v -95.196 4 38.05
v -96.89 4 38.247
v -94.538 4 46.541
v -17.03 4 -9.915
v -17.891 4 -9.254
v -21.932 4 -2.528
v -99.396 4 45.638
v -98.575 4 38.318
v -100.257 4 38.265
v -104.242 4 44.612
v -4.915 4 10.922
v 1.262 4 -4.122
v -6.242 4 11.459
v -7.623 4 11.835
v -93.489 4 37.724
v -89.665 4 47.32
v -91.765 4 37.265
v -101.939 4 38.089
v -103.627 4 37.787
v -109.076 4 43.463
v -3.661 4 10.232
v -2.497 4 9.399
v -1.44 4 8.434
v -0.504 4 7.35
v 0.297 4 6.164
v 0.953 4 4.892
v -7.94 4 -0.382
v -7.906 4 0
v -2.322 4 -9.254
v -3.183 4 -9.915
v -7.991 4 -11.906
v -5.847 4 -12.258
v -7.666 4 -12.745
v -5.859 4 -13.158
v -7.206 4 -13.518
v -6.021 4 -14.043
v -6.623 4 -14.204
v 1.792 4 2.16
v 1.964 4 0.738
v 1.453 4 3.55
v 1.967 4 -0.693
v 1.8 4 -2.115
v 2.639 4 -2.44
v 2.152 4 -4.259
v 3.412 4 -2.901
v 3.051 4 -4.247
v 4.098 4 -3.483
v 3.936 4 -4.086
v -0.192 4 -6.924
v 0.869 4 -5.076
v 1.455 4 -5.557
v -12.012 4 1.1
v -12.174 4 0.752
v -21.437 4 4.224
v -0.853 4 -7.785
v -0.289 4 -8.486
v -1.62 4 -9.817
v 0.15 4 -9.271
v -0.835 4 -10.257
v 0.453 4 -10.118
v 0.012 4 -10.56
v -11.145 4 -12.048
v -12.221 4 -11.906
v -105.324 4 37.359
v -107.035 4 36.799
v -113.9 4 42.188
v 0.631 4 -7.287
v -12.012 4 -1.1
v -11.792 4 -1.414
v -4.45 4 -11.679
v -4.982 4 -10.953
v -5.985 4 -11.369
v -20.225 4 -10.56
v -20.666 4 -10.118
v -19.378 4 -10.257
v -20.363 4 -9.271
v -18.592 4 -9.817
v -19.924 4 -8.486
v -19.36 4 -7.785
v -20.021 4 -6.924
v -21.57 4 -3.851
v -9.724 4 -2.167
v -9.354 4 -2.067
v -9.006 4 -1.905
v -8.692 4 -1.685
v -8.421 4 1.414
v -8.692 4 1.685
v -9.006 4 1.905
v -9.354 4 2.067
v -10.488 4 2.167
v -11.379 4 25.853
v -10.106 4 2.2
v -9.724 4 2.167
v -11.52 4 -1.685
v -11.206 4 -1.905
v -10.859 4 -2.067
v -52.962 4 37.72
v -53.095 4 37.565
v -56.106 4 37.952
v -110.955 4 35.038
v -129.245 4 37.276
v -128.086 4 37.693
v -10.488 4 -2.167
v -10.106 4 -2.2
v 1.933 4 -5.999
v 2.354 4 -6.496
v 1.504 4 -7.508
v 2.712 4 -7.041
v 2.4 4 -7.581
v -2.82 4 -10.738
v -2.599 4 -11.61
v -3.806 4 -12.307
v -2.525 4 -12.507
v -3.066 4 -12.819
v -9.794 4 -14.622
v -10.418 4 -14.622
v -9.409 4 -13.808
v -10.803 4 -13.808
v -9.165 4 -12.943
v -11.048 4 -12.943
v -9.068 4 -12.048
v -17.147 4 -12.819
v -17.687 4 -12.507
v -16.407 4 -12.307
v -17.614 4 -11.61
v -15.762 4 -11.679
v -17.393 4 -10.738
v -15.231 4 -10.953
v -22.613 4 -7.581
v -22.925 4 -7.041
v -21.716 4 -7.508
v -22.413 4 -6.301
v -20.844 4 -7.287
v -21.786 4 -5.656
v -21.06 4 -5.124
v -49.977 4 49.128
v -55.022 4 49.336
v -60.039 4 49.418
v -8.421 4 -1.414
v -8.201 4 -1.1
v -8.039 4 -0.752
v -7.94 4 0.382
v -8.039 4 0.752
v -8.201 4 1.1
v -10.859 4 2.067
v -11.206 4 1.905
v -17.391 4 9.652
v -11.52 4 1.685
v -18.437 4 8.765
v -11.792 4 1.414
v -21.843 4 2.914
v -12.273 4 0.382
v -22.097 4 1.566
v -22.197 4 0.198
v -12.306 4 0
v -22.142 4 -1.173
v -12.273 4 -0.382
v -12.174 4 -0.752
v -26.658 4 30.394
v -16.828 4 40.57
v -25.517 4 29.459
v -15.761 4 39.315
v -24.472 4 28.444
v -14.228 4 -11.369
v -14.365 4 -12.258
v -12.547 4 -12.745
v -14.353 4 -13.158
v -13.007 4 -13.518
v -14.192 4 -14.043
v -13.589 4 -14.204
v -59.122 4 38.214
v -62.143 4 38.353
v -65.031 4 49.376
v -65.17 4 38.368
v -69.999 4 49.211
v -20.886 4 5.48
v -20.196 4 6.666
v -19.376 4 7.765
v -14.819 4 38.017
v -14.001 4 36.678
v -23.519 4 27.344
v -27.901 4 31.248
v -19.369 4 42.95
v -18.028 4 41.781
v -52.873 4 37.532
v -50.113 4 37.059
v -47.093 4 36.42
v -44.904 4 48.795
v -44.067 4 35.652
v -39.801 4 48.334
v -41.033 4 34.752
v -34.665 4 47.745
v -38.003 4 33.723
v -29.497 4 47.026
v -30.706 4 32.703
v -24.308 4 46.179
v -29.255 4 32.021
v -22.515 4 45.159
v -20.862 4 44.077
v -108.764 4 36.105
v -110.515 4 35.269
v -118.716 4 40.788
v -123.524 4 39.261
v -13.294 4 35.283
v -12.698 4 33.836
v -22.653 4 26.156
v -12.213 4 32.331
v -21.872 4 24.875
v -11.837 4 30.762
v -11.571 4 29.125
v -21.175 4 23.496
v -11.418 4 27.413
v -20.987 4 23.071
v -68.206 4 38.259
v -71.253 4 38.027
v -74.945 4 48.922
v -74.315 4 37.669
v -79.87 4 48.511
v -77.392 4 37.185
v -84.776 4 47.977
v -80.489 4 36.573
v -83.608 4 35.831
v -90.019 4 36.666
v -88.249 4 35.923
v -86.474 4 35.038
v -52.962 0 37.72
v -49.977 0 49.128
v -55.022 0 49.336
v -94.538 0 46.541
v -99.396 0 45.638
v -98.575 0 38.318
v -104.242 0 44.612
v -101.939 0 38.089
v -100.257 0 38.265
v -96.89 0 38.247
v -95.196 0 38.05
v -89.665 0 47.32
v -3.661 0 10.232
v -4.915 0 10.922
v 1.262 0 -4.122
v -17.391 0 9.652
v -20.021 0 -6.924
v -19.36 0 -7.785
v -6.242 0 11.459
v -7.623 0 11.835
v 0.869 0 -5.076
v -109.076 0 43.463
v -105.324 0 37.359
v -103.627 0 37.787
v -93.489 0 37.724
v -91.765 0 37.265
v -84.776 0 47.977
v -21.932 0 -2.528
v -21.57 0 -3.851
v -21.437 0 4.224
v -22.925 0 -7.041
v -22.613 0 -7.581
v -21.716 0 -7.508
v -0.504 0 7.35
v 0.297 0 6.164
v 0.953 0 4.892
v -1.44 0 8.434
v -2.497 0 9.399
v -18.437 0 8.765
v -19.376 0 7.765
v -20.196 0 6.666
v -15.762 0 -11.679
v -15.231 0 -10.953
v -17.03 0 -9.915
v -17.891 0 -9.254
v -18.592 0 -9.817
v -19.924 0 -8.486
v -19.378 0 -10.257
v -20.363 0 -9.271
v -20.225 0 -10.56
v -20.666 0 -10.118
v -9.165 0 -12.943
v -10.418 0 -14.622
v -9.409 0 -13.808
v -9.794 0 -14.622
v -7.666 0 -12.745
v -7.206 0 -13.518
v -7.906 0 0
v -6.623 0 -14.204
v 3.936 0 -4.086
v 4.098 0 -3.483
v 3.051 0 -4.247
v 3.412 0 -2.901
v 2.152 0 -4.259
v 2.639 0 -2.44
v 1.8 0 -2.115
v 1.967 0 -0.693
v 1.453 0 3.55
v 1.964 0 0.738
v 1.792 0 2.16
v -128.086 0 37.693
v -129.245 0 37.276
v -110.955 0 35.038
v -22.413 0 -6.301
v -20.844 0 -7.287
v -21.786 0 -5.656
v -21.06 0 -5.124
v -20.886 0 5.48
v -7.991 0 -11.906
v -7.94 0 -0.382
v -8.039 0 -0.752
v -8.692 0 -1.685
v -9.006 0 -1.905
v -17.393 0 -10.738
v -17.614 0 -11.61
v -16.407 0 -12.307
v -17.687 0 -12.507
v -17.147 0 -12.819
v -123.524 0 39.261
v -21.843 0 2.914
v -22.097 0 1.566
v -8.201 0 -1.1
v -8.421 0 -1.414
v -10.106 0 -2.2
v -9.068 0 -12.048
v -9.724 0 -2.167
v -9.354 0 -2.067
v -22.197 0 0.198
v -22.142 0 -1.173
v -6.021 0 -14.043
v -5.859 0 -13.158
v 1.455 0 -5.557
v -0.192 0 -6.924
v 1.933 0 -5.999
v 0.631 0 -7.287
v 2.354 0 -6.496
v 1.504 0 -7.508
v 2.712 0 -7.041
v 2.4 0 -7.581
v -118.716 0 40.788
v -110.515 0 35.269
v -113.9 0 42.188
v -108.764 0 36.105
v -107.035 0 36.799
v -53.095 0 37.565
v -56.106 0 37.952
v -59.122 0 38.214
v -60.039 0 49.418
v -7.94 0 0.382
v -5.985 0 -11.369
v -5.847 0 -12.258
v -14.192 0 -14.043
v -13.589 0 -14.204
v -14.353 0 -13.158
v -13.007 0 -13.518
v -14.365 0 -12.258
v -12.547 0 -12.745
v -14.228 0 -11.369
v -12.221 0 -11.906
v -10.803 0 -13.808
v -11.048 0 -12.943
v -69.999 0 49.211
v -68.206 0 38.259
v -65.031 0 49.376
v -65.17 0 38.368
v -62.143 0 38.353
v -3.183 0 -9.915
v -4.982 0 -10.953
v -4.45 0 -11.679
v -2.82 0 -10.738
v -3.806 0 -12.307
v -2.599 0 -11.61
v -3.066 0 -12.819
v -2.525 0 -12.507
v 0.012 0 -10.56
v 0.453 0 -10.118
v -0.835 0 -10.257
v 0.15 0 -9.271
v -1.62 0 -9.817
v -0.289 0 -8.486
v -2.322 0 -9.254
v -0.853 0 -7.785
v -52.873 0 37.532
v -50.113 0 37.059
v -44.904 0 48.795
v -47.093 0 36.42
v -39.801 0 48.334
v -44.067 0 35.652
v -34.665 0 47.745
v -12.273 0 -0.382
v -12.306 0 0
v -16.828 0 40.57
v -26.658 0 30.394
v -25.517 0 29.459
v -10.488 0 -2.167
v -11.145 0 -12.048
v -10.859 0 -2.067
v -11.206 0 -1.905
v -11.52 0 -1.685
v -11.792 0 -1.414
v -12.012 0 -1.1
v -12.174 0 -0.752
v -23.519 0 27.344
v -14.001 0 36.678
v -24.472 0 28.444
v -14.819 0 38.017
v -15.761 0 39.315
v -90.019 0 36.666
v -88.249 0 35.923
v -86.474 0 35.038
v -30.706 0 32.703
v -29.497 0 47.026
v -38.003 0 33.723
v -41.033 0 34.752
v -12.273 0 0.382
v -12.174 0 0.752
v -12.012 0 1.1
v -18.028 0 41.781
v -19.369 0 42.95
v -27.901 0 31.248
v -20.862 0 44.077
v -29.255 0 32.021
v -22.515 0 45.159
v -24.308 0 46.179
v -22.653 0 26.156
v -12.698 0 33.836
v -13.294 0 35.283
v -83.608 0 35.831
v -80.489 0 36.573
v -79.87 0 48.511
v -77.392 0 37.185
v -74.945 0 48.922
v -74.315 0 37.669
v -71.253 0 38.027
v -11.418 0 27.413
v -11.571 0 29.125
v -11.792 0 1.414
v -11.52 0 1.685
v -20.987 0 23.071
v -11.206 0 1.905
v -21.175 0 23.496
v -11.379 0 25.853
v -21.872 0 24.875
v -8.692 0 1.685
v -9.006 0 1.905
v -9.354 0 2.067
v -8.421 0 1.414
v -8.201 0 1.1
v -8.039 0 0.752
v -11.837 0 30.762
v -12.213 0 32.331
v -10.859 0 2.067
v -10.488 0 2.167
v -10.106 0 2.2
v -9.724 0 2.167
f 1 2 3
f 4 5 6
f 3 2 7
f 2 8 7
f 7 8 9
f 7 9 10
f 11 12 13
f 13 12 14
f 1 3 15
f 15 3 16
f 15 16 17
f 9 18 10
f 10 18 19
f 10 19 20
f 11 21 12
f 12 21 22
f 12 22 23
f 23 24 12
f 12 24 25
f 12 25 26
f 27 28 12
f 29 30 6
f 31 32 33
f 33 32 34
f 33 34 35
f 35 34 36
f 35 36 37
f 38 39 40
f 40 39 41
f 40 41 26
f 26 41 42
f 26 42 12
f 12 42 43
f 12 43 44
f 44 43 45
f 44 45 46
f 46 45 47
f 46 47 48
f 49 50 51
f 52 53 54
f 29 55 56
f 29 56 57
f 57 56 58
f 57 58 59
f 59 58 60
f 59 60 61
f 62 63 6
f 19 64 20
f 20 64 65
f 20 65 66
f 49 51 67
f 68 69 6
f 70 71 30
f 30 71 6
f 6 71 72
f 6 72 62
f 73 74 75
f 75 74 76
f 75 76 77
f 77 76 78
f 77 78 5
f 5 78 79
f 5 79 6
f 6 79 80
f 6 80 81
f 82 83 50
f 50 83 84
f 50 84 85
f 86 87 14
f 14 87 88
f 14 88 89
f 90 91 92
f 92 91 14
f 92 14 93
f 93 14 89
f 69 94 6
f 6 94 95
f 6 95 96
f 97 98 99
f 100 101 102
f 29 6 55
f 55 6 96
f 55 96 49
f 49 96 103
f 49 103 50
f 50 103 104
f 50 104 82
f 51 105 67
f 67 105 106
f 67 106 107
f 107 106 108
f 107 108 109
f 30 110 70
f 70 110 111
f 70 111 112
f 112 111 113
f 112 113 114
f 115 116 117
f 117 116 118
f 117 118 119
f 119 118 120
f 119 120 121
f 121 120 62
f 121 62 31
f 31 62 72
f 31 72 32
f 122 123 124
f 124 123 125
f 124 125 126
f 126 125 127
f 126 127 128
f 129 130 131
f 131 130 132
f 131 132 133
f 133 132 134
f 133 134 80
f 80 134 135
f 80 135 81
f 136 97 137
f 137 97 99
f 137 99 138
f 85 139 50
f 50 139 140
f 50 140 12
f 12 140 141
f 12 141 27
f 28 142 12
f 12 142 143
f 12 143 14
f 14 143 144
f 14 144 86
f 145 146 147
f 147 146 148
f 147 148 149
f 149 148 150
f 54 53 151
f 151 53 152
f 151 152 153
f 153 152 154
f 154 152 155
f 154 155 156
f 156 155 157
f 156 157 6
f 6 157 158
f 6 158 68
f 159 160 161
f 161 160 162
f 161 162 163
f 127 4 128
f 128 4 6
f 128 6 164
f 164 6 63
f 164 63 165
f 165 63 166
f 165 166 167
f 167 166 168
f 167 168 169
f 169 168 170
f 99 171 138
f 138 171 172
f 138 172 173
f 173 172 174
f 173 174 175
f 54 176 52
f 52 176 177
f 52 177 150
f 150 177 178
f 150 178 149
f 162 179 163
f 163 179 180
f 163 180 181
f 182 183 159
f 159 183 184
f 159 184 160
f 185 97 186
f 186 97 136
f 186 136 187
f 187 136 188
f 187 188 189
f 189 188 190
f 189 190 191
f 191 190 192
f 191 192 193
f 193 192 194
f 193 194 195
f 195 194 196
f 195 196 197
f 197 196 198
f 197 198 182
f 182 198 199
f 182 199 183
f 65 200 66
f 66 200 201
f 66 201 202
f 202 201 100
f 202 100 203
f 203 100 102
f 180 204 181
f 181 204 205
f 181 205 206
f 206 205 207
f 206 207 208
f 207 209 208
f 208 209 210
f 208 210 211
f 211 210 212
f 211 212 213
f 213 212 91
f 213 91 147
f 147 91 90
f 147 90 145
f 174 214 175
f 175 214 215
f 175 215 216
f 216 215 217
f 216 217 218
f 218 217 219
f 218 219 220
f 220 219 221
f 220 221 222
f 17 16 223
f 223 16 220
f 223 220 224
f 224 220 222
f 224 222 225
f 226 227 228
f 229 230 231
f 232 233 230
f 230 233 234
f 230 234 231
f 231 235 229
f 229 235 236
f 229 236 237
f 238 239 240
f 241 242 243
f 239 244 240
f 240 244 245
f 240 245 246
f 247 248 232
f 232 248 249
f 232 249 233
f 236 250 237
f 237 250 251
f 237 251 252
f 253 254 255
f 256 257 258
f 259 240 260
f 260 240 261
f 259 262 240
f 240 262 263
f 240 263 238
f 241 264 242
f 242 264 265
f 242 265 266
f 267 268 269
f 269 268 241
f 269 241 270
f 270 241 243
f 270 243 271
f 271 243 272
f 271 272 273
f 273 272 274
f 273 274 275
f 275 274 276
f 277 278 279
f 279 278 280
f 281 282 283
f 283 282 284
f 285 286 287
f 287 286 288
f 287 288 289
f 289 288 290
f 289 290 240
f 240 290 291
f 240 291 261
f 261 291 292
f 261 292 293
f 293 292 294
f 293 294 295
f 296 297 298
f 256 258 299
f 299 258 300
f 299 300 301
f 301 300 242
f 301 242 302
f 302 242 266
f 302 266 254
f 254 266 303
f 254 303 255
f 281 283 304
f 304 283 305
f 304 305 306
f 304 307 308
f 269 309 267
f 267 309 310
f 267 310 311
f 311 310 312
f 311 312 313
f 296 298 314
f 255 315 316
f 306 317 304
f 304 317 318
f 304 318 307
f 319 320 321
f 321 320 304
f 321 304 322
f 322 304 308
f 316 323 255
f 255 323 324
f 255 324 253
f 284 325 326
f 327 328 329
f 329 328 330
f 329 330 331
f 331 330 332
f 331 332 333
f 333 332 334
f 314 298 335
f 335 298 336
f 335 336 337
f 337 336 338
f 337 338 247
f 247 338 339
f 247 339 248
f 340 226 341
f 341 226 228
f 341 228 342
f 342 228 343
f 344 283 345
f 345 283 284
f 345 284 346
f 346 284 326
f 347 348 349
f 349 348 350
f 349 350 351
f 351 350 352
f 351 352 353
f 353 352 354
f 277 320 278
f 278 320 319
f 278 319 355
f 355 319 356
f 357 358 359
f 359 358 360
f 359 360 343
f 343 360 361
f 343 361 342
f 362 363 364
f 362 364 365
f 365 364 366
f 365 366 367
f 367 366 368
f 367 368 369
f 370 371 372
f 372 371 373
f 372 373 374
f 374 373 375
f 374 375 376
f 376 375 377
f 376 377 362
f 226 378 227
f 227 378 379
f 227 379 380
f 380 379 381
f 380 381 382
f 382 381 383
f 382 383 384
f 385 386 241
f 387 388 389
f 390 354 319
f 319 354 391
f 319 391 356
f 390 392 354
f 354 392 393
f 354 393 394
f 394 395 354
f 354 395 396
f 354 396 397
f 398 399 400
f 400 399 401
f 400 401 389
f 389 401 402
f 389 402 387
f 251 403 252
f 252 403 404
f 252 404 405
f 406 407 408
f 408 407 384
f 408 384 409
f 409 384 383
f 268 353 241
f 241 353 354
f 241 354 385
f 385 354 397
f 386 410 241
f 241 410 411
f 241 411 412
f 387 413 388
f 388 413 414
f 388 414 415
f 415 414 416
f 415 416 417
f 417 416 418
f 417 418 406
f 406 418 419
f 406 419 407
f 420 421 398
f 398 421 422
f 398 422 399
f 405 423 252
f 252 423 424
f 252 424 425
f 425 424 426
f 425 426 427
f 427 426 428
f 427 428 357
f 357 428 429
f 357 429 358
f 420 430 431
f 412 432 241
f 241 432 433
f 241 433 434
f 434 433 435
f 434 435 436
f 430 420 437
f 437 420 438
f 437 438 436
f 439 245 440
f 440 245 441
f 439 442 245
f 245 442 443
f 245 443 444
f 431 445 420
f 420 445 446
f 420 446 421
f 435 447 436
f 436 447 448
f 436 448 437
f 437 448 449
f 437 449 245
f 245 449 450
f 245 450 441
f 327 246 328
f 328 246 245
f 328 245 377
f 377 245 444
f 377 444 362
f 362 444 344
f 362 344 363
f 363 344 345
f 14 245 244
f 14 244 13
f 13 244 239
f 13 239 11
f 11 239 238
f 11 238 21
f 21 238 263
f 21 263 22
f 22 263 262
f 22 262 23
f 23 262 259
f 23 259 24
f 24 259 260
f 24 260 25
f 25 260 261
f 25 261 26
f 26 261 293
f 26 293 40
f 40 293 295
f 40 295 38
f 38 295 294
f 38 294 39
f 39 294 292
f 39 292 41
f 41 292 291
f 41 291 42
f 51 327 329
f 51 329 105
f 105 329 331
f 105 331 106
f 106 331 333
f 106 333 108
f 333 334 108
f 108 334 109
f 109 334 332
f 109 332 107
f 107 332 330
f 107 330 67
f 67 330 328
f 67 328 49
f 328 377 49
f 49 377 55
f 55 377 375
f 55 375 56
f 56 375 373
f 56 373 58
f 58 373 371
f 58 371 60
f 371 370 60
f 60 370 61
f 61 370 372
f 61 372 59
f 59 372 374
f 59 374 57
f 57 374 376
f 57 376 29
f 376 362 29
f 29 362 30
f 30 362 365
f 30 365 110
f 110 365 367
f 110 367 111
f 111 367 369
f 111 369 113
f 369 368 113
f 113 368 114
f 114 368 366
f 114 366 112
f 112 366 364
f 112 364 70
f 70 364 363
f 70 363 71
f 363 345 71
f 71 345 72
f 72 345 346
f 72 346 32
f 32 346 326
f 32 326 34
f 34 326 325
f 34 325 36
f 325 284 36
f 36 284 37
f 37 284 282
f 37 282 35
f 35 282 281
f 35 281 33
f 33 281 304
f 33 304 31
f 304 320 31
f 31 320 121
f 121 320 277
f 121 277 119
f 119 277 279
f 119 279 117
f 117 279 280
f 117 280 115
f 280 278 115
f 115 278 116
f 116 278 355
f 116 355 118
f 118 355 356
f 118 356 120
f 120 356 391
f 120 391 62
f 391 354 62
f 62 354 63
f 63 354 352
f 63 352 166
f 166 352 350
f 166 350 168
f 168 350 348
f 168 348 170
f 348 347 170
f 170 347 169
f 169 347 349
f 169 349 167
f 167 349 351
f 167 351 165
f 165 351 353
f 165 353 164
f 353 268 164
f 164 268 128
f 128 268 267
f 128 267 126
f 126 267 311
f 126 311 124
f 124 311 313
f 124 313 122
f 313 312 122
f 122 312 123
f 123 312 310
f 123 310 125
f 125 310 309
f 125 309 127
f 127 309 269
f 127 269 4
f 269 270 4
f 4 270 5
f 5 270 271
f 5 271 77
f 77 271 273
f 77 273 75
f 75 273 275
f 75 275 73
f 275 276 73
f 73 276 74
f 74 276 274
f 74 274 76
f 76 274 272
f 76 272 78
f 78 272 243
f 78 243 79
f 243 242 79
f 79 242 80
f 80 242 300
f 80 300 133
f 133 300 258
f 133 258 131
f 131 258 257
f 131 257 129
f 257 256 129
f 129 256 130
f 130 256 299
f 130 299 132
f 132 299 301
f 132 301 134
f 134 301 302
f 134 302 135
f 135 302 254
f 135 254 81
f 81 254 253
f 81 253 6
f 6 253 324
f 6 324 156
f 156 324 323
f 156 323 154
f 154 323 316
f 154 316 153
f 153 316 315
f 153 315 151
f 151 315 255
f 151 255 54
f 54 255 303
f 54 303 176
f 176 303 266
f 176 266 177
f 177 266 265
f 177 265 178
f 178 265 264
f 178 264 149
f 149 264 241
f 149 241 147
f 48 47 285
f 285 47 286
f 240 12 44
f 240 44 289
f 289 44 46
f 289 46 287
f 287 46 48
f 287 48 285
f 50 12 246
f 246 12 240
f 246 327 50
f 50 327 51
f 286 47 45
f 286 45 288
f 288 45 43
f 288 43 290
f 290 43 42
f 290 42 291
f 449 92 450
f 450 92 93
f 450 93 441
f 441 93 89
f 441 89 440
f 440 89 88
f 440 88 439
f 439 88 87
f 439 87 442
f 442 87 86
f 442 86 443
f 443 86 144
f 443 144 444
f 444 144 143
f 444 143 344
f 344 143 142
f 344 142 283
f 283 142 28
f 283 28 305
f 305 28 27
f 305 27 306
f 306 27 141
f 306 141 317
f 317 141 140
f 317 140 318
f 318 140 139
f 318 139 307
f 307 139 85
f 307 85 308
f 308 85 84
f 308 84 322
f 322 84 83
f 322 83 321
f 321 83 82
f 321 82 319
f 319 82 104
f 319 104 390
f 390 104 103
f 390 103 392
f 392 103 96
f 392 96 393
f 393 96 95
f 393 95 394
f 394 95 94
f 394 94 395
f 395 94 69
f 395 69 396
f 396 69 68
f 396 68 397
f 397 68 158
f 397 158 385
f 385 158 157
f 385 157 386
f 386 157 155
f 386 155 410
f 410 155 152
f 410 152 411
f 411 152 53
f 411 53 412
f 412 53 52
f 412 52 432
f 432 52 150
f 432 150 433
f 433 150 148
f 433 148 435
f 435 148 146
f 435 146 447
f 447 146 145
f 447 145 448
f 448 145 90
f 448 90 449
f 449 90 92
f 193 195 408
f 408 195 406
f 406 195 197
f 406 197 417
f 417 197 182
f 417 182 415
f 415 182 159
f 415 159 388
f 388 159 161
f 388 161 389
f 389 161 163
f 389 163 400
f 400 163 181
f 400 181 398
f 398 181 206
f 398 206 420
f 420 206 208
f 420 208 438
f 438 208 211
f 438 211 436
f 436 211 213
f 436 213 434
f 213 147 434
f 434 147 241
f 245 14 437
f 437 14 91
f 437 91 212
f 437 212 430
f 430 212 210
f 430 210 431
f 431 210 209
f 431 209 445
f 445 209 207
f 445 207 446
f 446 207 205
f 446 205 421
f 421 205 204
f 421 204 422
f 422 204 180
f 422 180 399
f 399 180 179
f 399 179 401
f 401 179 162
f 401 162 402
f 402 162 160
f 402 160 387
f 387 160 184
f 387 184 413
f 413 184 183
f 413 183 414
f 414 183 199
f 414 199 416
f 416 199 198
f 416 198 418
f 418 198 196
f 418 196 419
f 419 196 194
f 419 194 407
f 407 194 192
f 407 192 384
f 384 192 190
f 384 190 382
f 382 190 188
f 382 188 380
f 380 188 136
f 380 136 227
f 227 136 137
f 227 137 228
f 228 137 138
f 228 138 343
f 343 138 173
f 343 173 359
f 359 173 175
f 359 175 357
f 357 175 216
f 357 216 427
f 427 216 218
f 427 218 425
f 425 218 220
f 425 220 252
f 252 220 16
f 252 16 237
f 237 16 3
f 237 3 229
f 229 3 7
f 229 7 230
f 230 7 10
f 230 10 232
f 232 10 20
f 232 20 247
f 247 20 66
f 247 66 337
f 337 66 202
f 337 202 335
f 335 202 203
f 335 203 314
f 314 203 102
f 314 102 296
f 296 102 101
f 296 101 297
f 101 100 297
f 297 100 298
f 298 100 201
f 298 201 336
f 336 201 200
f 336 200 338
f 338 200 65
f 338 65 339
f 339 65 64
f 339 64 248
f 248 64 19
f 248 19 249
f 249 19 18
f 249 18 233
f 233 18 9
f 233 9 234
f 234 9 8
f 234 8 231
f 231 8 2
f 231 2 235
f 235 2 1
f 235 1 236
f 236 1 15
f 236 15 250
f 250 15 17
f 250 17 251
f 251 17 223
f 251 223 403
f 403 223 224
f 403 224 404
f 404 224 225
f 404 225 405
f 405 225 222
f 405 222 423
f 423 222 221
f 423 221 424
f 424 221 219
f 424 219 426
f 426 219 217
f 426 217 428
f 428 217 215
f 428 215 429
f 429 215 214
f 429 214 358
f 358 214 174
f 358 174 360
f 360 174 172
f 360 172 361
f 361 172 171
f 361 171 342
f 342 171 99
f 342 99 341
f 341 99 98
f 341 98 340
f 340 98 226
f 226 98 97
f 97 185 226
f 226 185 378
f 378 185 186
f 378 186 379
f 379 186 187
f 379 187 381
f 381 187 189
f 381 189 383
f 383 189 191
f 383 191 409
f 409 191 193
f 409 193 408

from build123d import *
from build123d.topology import SkipClean

# Parameters (mm, degrees)
SKETCH1_R           = 1.5
BOSS_EXTRUDE1_DEPTH = 4
SKETCH3_R           = 1.75
BOSS_EXTRUDE2_DEPTH = 4
CUT_EXTRUDE1_START  = -4
CUT_EXTRUDE1_DEPTH  = 4
CUT_EXTRUDE2_REACH  = 49.1
SKETCH5_R           = 2.2
BOSS_EXTRUDE3_START = -4
BOSS_EXTRUDE3_DEPTH = 4
CUT_EXTRUDE3_START  = -10
SKETCH6_3_R         = 1.75
CUT_EXTRUDE3_DEPTH  = 10


with BuildPart() as part:
    # Sketch1 → Boss-Extrude1 (new body)
    with BuildSketch(Plane(origin=(0, 0, 0), x_dir=(1, 0, 0), z_dir=(0, 1, 0))):
        with BuildLine():
            Line((19.858482165, 7.979459856), (1.45526727, 5.556630652))
            ThreePointArc((1.45526727, 5.556630652), (2.151210177, 6.241530576), (2.71243846, 7.040559518))
            ThreePointArc((2.71243846, 7.040559518), (2.559278977, 7.3125), (2.400351352, 7.581110245))
            ThreePointArc((2.400351352, 7.581110245), (1.062931662, 7.415362311), (-0.19179738, 6.923611525))
            ThreePointArc((-0.19179738, 6.923611525), (-0.512518948, 7.361599771), (-0.852574256, 7.784752716))
            ThreePointArc((-0.852574256, 7.784752716), (-0.0528317, 8.869453434), (0.453418198, 10.118402931))
            ThreePointArc((0.453418198, 10.118402931), (0.235094121, 10.341436675), (0.012060377, 10.559760751))
            ThreePointArc((0.012060377, 10.559760751), (-1.23688912, 10.053510854), (-2.321589838, 9.253768298))
            ThreePointArc((-2.321589838, 9.253768298), (-2.744742783, 9.593823606), (-3.182731029, 9.914545174))
            ThreePointArc((-3.182731029, 9.914545174), (-2.690980243, 11.169274216), (-2.525232309, 12.506693906))
            ThreePointArc((-2.525232309, 12.506693906), (-2.793842554, 12.66562153), (-3.065783036, 12.818781014))
            ThreePointArc((-3.065783036, 12.818781014), (-4.141148496, 12.006529247), (-4.981900329, 10.953296054))
            ThreePointArc((-4.981900329, 10.953296054), (-5.478647477, 11.172244217), (-5.984720485, 11.368677763))
            ThreePointArc((-5.984720485, 11.368677763), (-5.834473474, 12.707927419), (-6.020522951, 14.04267436))
            ThreePointArc((-6.020522951, 14.04267436), (-6.321114019, 14.126665209), (-6.623428946, 14.204222534))
            ThreePointArc((-6.623428946, 14.204222534), (-7.451925989, 13.141322514), (-7.991433089, 11.906374785))
            ThreePointArc((-7.991433089, 11.906374785), (-8.527921943, 11.989294847), (-9.067591674, 12.04805375))
            ThreePointArc((-9.067591674, 12.04805375), (-9.269087523, 13.380556368), (-9.794255446, 14.621669762))
            ThreePointArc((-9.794255446, 14.621669762), (-10.106342554, 14.625), (-10.418429662, 14.621669762))
            ThreePointArc((-10.418429662, 14.621669762), (-10.943597585, 13.380556368), (-11.145093433, 12.04805375))
            ThreePointArc((-11.145093433, 12.04805375), (-11.684763165, 11.989294847), (-12.221252019, 11.906374785))
            ThreePointArc((-12.221252019, 11.906374785), (-12.760759118, 13.141322514), (-13.589256162, 14.204222534))
            ThreePointArc((-13.589256162, 14.204222534), (-13.891571088, 14.126665209), (-14.192162157, 14.04267436))
            ThreePointArc((-14.192162157, 14.04267436), (-14.378211634, 12.707927419), (-14.227964623, 11.368677763))
            ThreePointArc((-14.227964623, 11.368677763), (-14.734037631, 11.172244217), (-15.230784779, 10.953296054))
            ThreePointArc((-15.230784779, 10.953296054), (-16.071536612, 12.006529247), (-17.146902071, 12.818781014))
            ThreePointArc((-17.146902071, 12.818781014), (-17.418842554, 12.66562153), (-17.687452799, 12.506693906))
            ThreePointArc((-17.687452799, 12.506693906), (-17.521704864, 11.169274216), (-17.029954079, 9.914545174))
            ThreePointArc((-17.029954079, 9.914545174), (-17.467942324, 9.593823606), (-17.89109527, 9.253768298))
            ThreePointArc((-17.89109527, 9.253768298), (-18.975795988, 10.053510854), (-20.224745485, 10.559760751))
            ThreePointArc((-20.224745485, 10.559760751), (-20.447779229, 10.341436675), (-20.666103305, 10.118402931))
            ThreePointArc((-20.666103305, 10.118402931), (-20.159853408, 8.869453434), (-19.360110852, 7.784752716))
            ThreePointArc((-19.360110852, 7.784752716), (-19.70016616, 7.361599771), (-20.020887728, 6.923611525))
            ThreePointArc((-20.020887728, 6.923611525), (-21.27561677, 7.415362311), (-22.61303646, 7.581110245))
            ThreePointArc((-22.61303646, 7.581110245), (-22.771964084, 7.3125), (-22.925123568, 7.040559518))
            ThreePointArc((-22.925123568, 7.040559518), (-22.112871801, 5.965194058), (-21.059638608, 5.124442225))
            ThreePointArc((-21.059638608, 5.124442225), (-21.278586771, 4.627695077), (-21.475020317, 4.121622069))
            ThreePointArc((-21.475020317, 4.121622069), (-22.814269973, 4.27186908), (-24.149016913, 4.085819603))
            ThreePointArc((-24.149016913, 4.085819603), (-24.233007763, 3.785228535), (-24.310565088, 3.482913608))
            ThreePointArc((-24.310565088, 3.482913608), (-23.247665068, 2.654416564), (-22.012717339, 2.114909465))
            ThreePointArc((-22.012717339, 2.114909465), (-22.095637401, 1.578420611), (-22.154396304, 1.03875088))
            ThreePointArc((-22.154396304, 1.03875088), (-23.486898922, 0.837255031), (-24.728012316, 0.312087108))
            ThreePointArc((-24.728012316, 0.312087108), (-24.731342554, 0), (-24.728012316, -0.312087108))
            ThreePointArc((-24.728012316, -0.312087108), (-23.486898922, -0.837255031), (-22.154396304, -1.03875088))
            ThreePointArc((-22.154396304, -1.03875088), (-22.095637401, -1.578420611), (-22.012717339, -2.114909465))
            ThreePointArc((-22.012717339, -2.114909465), (-23.247665068, -2.654416564), (-24.310565088, -3.482913608))
            ThreePointArc((-24.310565088, -3.482913608), (-24.233007763, -3.785228535), (-24.149016913, -4.085819603))
            ThreePointArc((-24.149016913, -4.085819603), (-22.814269973, -4.27186908), (-21.475020317, -4.121622069))
            ThreePointArc((-21.475020317, -4.121622069), (-21.278586771, -4.627695077), (-21.059638608, -5.124442225))
            ThreePointArc((-21.059638608, -5.124442225), (-22.112871801, -5.965194058), (-22.925123568, -7.040559518))
            ThreePointArc((-22.925123568, -7.040559518), (-22.771964084, -7.3125), (-22.61303646, -7.581110245))
            ThreePointArc((-22.61303646, -7.581110245), (-21.27561677, -7.415362311), (-20.020887728, -6.923611525))
            ThreePointArc((-20.020887728, -6.923611525), (-19.70016616, -7.361599771), (-19.360110852, -7.784752716))
            ThreePointArc((-19.360110852, -7.784752716), (-20.159853408, -8.869453434), (-20.666103305, -10.118402931))
            ThreePointArc((-20.666103305, -10.118402931), (-20.447779229, -10.341436675), (-20.224745485, -10.559760751))
            ThreePointArc((-20.224745485, -10.559760751), (-18.975795988, -10.053510854), (-17.89109527, -9.253768298))
            ThreePointArc((-17.89109527, -9.253768298), (-17.467942324, -9.593823606), (-17.029954079, -9.914545174))
            ThreePointArc((-17.029954079, -9.914545174), (-17.521704864, -11.169274216), (-17.687452799, -12.506693906))
            ThreePointArc((-17.687452799, -12.506693906), (-17.418842554, -12.66562153), (-17.146902071, -12.818781014))
            ThreePointArc((-17.146902071, -12.818781014), (-16.071536612, -12.006529247), (-15.230784779, -10.953296054))
            ThreePointArc((-15.230784779, -10.953296054), (-14.734037631, -11.172244217), (-14.227964623, -11.368677763))
            ThreePointArc((-14.227964623, -11.368677763), (-14.378211634, -12.707927419), (-14.192162157, -14.04267436))
            ThreePointArc((-14.192162157, -14.04267436), (-13.891571088, -14.126665209), (-13.589256162, -14.204222534))
            ThreePointArc((-13.589256162, -14.204222534), (-12.760759118, -13.141322514), (-12.221252019, -11.906374785))
            ThreePointArc((-12.221252019, -11.906374785), (-11.684763165, -11.989294847), (-11.145093433, -12.04805375))
            ThreePointArc((-11.145093433, -12.04805375), (-10.943597585, -13.380556368), (-10.418429662, -14.621669762))
            ThreePointArc((-10.418429662, -14.621669762), (-10.106342554, -14.625), (-9.794255446, -14.621669762))
            ThreePointArc((-9.794255446, -14.621669762), (-9.269087523, -13.380556368), (-9.067591674, -12.04805375))
            ThreePointArc((-9.067591674, -12.04805375), (-8.527921943, -11.989294847), (-7.991433089, -11.906374785))
            ThreePointArc((-7.991433089, -11.906374785), (-7.451925989, -13.141322514), (-6.623428946, -14.204222534))
            ThreePointArc((-6.623428946, -14.204222534), (-6.321114019, -14.126665209), (-6.020522951, -14.04267436))
            ThreePointArc((-6.020522951, -14.04267436), (-5.834473474, -12.707927419), (-5.984720485, -11.368677763))
            ThreePointArc((-5.984720485, -11.368677763), (-5.478647477, -11.172244217), (-4.981900329, -10.953296054))
            ThreePointArc((-4.981900329, -10.953296054), (-4.141148496, -12.006529247), (-3.065783036, -12.818781014))
            ThreePointArc((-3.065783036, -12.818781014), (-2.793842554, -12.66562153), (-2.525232309, -12.506693906))
            ThreePointArc((-2.525232309, -12.506693906), (-2.690980243, -11.169274216), (-3.182731029, -9.914545174))
            ThreePointArc((-3.182731029, -9.914545174), (-2.744742783, -9.593823606), (-2.321589838, -9.253768298))
            ThreePointArc((-2.321589838, -9.253768298), (-1.23688912, -10.053510854), (0.012060377, -10.559760751))
            ThreePointArc((0.012060377, -10.559760751), (0.235094121, -10.341436675), (0.453418198, -10.118402931))
            ThreePointArc((0.453418198, -10.118402931), (-0.0528317, -8.869453434), (-0.852574256, -7.784752716))
            ThreePointArc((-0.852574256, -7.784752716), (-0.512518948, -7.361599771), (-0.19179738, -6.923611525))
            ThreePointArc((-0.19179738, -6.923611525), (1.062931662, -7.415362311), (2.400351352, -7.581110245))
            ThreePointArc((2.400351352, -7.581110245), (2.559278977, -7.3125), (2.71243846, -7.040559518))
            ThreePointArc((2.71243846, -7.040559518), (1.900186694, -5.965194058), (0.8469535, -5.124442225))
            ThreePointArc((0.8469535, -5.124442225), (1.065901663, -4.627695077), (1.262335209, -4.121622069))
            ThreePointArc((1.262335209, -4.121622069), (2.601584865, -4.27186908), (3.936331806, -4.085819603))
            ThreePointArc((3.936331806, -4.085819603), (4.020322656, -3.785228535), (4.09787998, -3.482913608))
            ThreePointArc((4.09787998, -3.482913608), (3.348971179, -2.856367486), (2.499476808, -2.374928239))
            Line((2.499476808, -2.374928239), (20.902691702, 0.047900965))
            ThreePointArc((20.902691702, 0.047900965), (24.346366379, 4.53578518), (19.858482165, 7.979459856))
        make_face()
        with Locations(Location((-10.106342554, 0, 0), (0, 0, 270))):
            Circle(SKETCH1_R, mode=Mode.SUBTRACT)
        with Locations(Location((20.380586933, 4.013680411, 0), (0, 0, 270))):
            Circle(SKETCH1_R, mode=Mode.SUBTRACT)
    extrude(amount=BOSS_EXTRUDE1_DEPTH)

    # Sketch3 → Boss-Extrude2 (add)
    with BuildSketch(Plane(origin=(0, 4, 0), x_dir=(1, 0, 0), z_dir=(0, 1, 0))):
        with BuildLine():
            Line((-10.628447323, 3.965779445), (-41.11537681, -0.047900965))
            ThreePointArc((-41.11537681, -0.047900965), (-44.559051487, -4.53578518), (-40.071167272, -7.979459856))
            Line((-40.071167272, -7.979459856), (-9.584237785, -3.965779445))
            ThreePointArc((-9.584237785, -3.965779445), (-14.072121999, -0.522104769), (-10.628447323, 3.965779445))
        make_face()
        with Locations(Location((-40.593272041, -4.013680411, 0), (0, 0, 270))):
            Circle(SKETCH3_R, mode=Mode.SUBTRACT)
    extrude(amount=-BOSS_EXTRUDE2_DEPTH)

    # Sketch4 → Cut-Extrude1 (cut)
    with SkipClean():  # the faces are left unmerged after this step: merging them gives an invalid solid
        with BuildSketch(Plane(origin=(0, 4, 0), x_dir=(1, 0, 0), z_dir=(0, 1, 0)).offset(CUT_EXTRUDE1_START)):
            with BuildLine():
                ThreePointArc((20.902691702, 0.047900965), (24.346366379, 4.53578518), (19.858482165, 7.979459856))
                Line((19.858482165, 7.979459856), (1.45526727, 5.556630652))
                Line((1.45526727, 5.556630652), (0.869405378, 5.076175716))
                ThreePointArc((0.869405378, 5.076175716), (1.076060277, 4.603093469), (1.262335209, 4.121622069))
                ThreePointArc((1.262335209, 4.121622069), (2.601584865, 4.27186908), (3.936331806, 4.085819603))
                ThreePointArc((3.936331806, 4.085819603), (4.020322656, 3.785228535), (4.09787998, 3.482913608))
                ThreePointArc((4.09787998, 3.482913608), (3.03497996, 2.654416564), (1.800032231, 2.114909465))
                ThreePointArc((1.800032231, 2.114909465), (1.941711197, -1.03875088), (1.262335209, -4.121622069))
                ThreePointArc((1.262335209, -4.121622069), (2.601584865, -4.27186908), (3.936331806, -4.085819603))
                ThreePointArc((3.936331806, -4.085819603), (4.020322656, -3.785228535), (4.09787998, -3.482913608))
                ThreePointArc((4.09787998, -3.482913608), (3.348971179, -2.856367486), (2.499476808, -2.374928239))
                Line((2.499476808, -2.374928239), (20.902691702, 0.047900965))
            make_face()
            with BuildLine():
                ThreePointArc((2.71243846, -7.040559518), (1.900186694, -5.965194058), (0.8469535, -5.124442225))
                ThreePointArc((0.8469535, -5.124442225), (0.366286148, -6.046375), (-0.19179738, -6.923611525))
                ThreePointArc((-0.19179738, -6.923611525), (1.062931662, -7.415362311), (2.400351352, -7.581110245))
                ThreePointArc((2.400351352, -7.581110245), (2.559278977, -7.3125), (2.71243846, -7.040559518))
            make_face()
            with BuildLine():
                ThreePointArc((0.453418198, -10.118402931), (-0.0528317, -8.869453434), (-0.852574256, -7.784752716))
                ThreePointArc((-0.852574256, -7.784752716), (-1.555477026, -8.550865528), (-2.321589838, -9.253768298))
                ThreePointArc((-2.321589838, -9.253768298), (-1.23688912, -10.053510854), (0.012060377, -10.559760751))
                ThreePointArc((0.012060377, -10.559760751), (0.235094121, -10.341436675), (0.453418198, -10.118402931))
            make_face()
            with BuildLine():
                ThreePointArc((-2.525232309, -12.506693906), (-2.690980243, -11.169274216), (-3.182731029, -9.914545174))
                ThreePointArc((-3.182731029, -9.914545174), (-4.059967554, -10.472628702), (-4.981900329, -10.953296054))
                ThreePointArc((-4.981900329, -10.953296054), (-4.141148496, -12.006529247), (-3.065783036, -12.818781014))
                ThreePointArc((-3.065783036, -12.818781014), (-2.793842554, -12.66562153), (-2.525232309, -12.506693906))
            make_face()
            with BuildLine():
                ThreePointArc((-6.020522951, -14.04267436), (-5.834473474, -12.707927419), (-5.984720485, -11.368677763))
                ThreePointArc((-5.984720485, -11.368677763), (-6.976508546, -11.680699536), (-7.991433089, -11.906374785))
                ThreePointArc((-7.991433089, -11.906374785), (-7.451925989, -13.141322514), (-6.623428946, -14.204222534))
                ThreePointArc((-6.623428946, -14.204222534), (-6.321114019, -14.126665209), (-6.020522951, -14.04267436))
            make_face()
            with BuildLine():
                ThreePointArc((-9.794255446, -14.621669762), (-9.269087523, -13.380556368), (-9.067591674, -12.04805375))
                ThreePointArc((-9.067591674, -12.04805375), (-10.106342554, -12.09275), (-11.145093433, -12.04805375))
                ThreePointArc((-11.145093433, -12.04805375), (-10.943597585, -13.380556368), (-10.418429662, -14.621669762))
                ThreePointArc((-10.418429662, -14.621669762), (-10.106342554, -14.625), (-9.794255446, -14.621669762))
            make_face()
            with BuildLine():
                ThreePointArc((-13.589256162, -14.204222534), (-12.760759118, -13.141322514), (-12.221252019, -11.906374785))
                ThreePointArc((-12.221252019, -11.906374785), (-13.236176561, -11.680699536), (-14.227964623, -11.368677763))
                ThreePointArc((-14.227964623, -11.368677763), (-14.378211634, -12.707927419), (-14.192162157, -14.04267436))
                ThreePointArc((-14.192162157, -14.04267436), (-13.891571088, -14.126665209), (-13.589256162, -14.204222534))
            make_face()
            with BuildLine():
                ThreePointArc((-17.146902071, -12.818781014), (-16.071536612, -12.006529247), (-15.230784779, -10.953296054))
                ThreePointArc((-15.230784779, -10.953296054), (-16.152717554, -10.472628702), (-17.029954079, -9.914545174))
                ThreePointArc((-17.029954079, -9.914545174), (-17.521704864, -11.169274216), (-17.687452799, -12.506693906))
                ThreePointArc((-17.687452799, -12.506693906), (-17.418842554, -12.66562153), (-17.146902071, -12.818781014))
            make_face()
            with BuildLine():
                ThreePointArc((-21.942853375, 2.47620963), (-21.738068128, 3.307198622), (-21.475020317, 4.121622069))
                ThreePointArc((-21.475020317, 4.121622069), (-22.814269973, 4.27186908), (-24.149016913, 4.085819603))
                ThreePointArc((-24.149016913, 4.085819603), (-24.233007763, 3.785228535), (-24.310565088, 3.482913608))
                ThreePointArc((-24.310565088, 3.482913608), (-23.561656287, 2.856367486), (-22.712161916, 2.374928239))
                Line((-22.712161916, 2.374928239), (-21.942853375, 2.47620963))
            make_face()
            with BuildLine():
                ThreePointArc((-20.224745485, -10.559760751), (-18.975795988, -10.053510854), (-17.89109527, -9.253768298))
                ThreePointArc((-17.89109527, -9.253768298), (-18.657208082, -8.550865528), (-19.360110852, -7.784752716))
                ThreePointArc((-19.360110852, -7.784752716), (-20.159853408, -8.869453434), (-20.666103305, -10.118402931))
                ThreePointArc((-20.666103305, -10.118402931), (-20.447779229, -10.341436675), (-20.224745485, -10.559760751))
            make_face()
            with BuildLine():
                ThreePointArc((-20.020887728, -6.923611525), (-20.485760701, -6.205020667), (-20.898643838, -5.455349261))
                Line((-20.898643838, -5.455349261), (-21.667952378, -5.556630652))
                ThreePointArc((-21.667952378, -5.556630652), (-22.363895284, -6.241530576), (-22.925123568, -7.040559518))
                ThreePointArc((-22.925123568, -7.040559518), (-22.771964084, -7.3125), (-22.61303646, -7.581110245))
                ThreePointArc((-22.61303646, -7.581110245), (-21.27561677, -7.415362311), (-20.020887728, -6.923611525))
            make_face()
        extrude(amount=CUT_EXTRUDE1_DEPTH, mode=Mode.SUBTRACT)

    # Sketch5 → Cut-Extrude2 (cut, up to next)
    with BuildSketch(Plane(origin=(0, 4, 0), x_dir=(1, 0, 0), z_dir=(0, 1, 0)), mode=Mode.PRIVATE) as cut_extrude2_sk1:
        with Locations(Location((-10.106342554, 0, 0), (0, 0, 270))):
            Circle(SKETCH5_R)
    cut_extrude2_tool1 = extrude(cut_extrude2_sk1.sketch, amount=-CUT_EXTRUDE2_REACH, mode=Mode.PRIVATE) & part.part
    add(cut_extrude2_tool1.solids().sort_by_distance((-10.106343, 4, 0))[0], mode=Mode.SUBTRACT)

    # Sketch6 → Boss-Extrude3 (add)
    with SkipClean():  # the faces are left unmerged after this step: merging them gives an invalid solid
        with BuildSketch(Plane(origin=(0, 4, 0), x_dir=(1, 0, 0), z_dir=(0, 1, 0)).offset(BOSS_EXTRUDE3_START)):
            with BuildLine():
                ThreePointArc((-52.962051912, -37.720188973), (-53.029457116, -37.643685191), (-53.094890456, -37.565488207))
                add(Edge.make_bspline(
                    [(-53.094890456, -37.565488207), (-69.574492007, -40.022931453), (-86.473755851, -35.03783058)],
                    knots=[0.398617796, 0.398617796, 0.398617796, 1, 1, 1], degree=2))
                add(Edge.make_bspline(
                    [(-86.473755851, -35.03783058), (-98.679286779, -41.59959414), (-110.954647006, -35.03783058)],
                    knots=[0, 0, 0, 1, 1, 1], degree=2))
                Line((-110.954647006, -35.03783058), (-129.244737731, -37.275679444))
                add(Edge.make_bspline(
                    [(-24.307799862, -46.178856242), (-78.550492212, -55.693347591), (-129.244737731, -37.275679444)],
                    knots=[0.002349817, 0.002349817, 0.002349817, 1, 1, 1], degree=2))
                add(Edge.make_bspline(
                    [(-24.307799862, -46.178856242), (-11.325946224, -39.297851738), (-11.379295158, -25.85254802)],
                    knots=[0, 0, 0, 1, 1, 1], degree=2))
                Line((-11.379295158, -25.85254802), (-10.692878437, -23.290805939))
                Line((-10.692878437, -23.290805939), (-7.62332727, -11.83508503))
                ThreePointArc((-7.62332727, -11.83508503), (-7.874404331, -11.88499282), (-8.126481564, -11.929574721))
                ThreePointArc((-8.126481564, -11.929574721), (-12.992916327, -11.743180762), (-17.391194669, -9.652229391))
                Line((-17.391194669, -9.652229391), (-20.453641162, -21.0814353))
                Line((-20.453641162, -21.0814353), (-20.986801846, -23.071218061))
                add(Edge.make_bspline(
                    [(-30.706376797, -32.703441208), (-23.88923072, -29.810908187), (-20.986801846, -23.071218061)],
                    knots=[0, 0, 0, 1, 1, 1], degree=2))
                Line((-30.706376797, -32.703441208), (-31.121289752, -32.76140473))
                Line((-31.121289752, -32.76140473), (-38.003060246, -33.722791093))
                add(Edge.make_bspline(
                    [(-38.003060246, -33.722791093), (-45.394684007, -36.393930701), (-52.872751681, -37.532021826)],
                    knots=[0.121623856, 0.121623856, 0.121623856, 0.394564246, 0.394564246, 0.394564246], degree=2))
                ThreePointArc((-52.872751681, -37.532021826), (-52.918626749, -37.625524062), (-52.962051912, -37.720188973))
            make_face()
        extrude(amount=BOSS_EXTRUDE3_DEPTH)

    # Sketch6<3> → Cut-Extrude3 (cut)
    with SkipClean():  # the faces are left unmerged after this step: merging them gives an invalid solid
        with BuildSketch(Plane(origin=(0, 4, 0), x_dir=(1, 0, 0), z_dir=(0, 1, 0)).offset(CUT_EXTRUDE3_START)):
            with BuildLine():
                Line((-40.071167272, -7.979459856), (-20.898643838, -5.455349261))
                ThreePointArc((-20.898643838, -5.455349261), (-22.095637401, -1.578420611), (-21.942853375, 2.47620963))
                Line((-21.942853375, 2.47620963), (-41.11537681, -0.047900965))
                ThreePointArc((-41.11537681, -0.047900965), (-44.592679619, -4.082521016), (-40.978584416, -7.995078956))
                ThreePointArc((-40.978584416, -7.995078956), (-40.524431436, -8.013087988), (-40.071167272, -7.979459856))
            make_face()
            with Locations((-40.593272041, -4.013680411)):
                Circle(SKETCH6_3_R, mode=Mode.SUBTRACT)
        extrude(amount=CUT_EXTRUDE3_DEPTH, mode=Mode.SUBTRACT)


solid = part.part
